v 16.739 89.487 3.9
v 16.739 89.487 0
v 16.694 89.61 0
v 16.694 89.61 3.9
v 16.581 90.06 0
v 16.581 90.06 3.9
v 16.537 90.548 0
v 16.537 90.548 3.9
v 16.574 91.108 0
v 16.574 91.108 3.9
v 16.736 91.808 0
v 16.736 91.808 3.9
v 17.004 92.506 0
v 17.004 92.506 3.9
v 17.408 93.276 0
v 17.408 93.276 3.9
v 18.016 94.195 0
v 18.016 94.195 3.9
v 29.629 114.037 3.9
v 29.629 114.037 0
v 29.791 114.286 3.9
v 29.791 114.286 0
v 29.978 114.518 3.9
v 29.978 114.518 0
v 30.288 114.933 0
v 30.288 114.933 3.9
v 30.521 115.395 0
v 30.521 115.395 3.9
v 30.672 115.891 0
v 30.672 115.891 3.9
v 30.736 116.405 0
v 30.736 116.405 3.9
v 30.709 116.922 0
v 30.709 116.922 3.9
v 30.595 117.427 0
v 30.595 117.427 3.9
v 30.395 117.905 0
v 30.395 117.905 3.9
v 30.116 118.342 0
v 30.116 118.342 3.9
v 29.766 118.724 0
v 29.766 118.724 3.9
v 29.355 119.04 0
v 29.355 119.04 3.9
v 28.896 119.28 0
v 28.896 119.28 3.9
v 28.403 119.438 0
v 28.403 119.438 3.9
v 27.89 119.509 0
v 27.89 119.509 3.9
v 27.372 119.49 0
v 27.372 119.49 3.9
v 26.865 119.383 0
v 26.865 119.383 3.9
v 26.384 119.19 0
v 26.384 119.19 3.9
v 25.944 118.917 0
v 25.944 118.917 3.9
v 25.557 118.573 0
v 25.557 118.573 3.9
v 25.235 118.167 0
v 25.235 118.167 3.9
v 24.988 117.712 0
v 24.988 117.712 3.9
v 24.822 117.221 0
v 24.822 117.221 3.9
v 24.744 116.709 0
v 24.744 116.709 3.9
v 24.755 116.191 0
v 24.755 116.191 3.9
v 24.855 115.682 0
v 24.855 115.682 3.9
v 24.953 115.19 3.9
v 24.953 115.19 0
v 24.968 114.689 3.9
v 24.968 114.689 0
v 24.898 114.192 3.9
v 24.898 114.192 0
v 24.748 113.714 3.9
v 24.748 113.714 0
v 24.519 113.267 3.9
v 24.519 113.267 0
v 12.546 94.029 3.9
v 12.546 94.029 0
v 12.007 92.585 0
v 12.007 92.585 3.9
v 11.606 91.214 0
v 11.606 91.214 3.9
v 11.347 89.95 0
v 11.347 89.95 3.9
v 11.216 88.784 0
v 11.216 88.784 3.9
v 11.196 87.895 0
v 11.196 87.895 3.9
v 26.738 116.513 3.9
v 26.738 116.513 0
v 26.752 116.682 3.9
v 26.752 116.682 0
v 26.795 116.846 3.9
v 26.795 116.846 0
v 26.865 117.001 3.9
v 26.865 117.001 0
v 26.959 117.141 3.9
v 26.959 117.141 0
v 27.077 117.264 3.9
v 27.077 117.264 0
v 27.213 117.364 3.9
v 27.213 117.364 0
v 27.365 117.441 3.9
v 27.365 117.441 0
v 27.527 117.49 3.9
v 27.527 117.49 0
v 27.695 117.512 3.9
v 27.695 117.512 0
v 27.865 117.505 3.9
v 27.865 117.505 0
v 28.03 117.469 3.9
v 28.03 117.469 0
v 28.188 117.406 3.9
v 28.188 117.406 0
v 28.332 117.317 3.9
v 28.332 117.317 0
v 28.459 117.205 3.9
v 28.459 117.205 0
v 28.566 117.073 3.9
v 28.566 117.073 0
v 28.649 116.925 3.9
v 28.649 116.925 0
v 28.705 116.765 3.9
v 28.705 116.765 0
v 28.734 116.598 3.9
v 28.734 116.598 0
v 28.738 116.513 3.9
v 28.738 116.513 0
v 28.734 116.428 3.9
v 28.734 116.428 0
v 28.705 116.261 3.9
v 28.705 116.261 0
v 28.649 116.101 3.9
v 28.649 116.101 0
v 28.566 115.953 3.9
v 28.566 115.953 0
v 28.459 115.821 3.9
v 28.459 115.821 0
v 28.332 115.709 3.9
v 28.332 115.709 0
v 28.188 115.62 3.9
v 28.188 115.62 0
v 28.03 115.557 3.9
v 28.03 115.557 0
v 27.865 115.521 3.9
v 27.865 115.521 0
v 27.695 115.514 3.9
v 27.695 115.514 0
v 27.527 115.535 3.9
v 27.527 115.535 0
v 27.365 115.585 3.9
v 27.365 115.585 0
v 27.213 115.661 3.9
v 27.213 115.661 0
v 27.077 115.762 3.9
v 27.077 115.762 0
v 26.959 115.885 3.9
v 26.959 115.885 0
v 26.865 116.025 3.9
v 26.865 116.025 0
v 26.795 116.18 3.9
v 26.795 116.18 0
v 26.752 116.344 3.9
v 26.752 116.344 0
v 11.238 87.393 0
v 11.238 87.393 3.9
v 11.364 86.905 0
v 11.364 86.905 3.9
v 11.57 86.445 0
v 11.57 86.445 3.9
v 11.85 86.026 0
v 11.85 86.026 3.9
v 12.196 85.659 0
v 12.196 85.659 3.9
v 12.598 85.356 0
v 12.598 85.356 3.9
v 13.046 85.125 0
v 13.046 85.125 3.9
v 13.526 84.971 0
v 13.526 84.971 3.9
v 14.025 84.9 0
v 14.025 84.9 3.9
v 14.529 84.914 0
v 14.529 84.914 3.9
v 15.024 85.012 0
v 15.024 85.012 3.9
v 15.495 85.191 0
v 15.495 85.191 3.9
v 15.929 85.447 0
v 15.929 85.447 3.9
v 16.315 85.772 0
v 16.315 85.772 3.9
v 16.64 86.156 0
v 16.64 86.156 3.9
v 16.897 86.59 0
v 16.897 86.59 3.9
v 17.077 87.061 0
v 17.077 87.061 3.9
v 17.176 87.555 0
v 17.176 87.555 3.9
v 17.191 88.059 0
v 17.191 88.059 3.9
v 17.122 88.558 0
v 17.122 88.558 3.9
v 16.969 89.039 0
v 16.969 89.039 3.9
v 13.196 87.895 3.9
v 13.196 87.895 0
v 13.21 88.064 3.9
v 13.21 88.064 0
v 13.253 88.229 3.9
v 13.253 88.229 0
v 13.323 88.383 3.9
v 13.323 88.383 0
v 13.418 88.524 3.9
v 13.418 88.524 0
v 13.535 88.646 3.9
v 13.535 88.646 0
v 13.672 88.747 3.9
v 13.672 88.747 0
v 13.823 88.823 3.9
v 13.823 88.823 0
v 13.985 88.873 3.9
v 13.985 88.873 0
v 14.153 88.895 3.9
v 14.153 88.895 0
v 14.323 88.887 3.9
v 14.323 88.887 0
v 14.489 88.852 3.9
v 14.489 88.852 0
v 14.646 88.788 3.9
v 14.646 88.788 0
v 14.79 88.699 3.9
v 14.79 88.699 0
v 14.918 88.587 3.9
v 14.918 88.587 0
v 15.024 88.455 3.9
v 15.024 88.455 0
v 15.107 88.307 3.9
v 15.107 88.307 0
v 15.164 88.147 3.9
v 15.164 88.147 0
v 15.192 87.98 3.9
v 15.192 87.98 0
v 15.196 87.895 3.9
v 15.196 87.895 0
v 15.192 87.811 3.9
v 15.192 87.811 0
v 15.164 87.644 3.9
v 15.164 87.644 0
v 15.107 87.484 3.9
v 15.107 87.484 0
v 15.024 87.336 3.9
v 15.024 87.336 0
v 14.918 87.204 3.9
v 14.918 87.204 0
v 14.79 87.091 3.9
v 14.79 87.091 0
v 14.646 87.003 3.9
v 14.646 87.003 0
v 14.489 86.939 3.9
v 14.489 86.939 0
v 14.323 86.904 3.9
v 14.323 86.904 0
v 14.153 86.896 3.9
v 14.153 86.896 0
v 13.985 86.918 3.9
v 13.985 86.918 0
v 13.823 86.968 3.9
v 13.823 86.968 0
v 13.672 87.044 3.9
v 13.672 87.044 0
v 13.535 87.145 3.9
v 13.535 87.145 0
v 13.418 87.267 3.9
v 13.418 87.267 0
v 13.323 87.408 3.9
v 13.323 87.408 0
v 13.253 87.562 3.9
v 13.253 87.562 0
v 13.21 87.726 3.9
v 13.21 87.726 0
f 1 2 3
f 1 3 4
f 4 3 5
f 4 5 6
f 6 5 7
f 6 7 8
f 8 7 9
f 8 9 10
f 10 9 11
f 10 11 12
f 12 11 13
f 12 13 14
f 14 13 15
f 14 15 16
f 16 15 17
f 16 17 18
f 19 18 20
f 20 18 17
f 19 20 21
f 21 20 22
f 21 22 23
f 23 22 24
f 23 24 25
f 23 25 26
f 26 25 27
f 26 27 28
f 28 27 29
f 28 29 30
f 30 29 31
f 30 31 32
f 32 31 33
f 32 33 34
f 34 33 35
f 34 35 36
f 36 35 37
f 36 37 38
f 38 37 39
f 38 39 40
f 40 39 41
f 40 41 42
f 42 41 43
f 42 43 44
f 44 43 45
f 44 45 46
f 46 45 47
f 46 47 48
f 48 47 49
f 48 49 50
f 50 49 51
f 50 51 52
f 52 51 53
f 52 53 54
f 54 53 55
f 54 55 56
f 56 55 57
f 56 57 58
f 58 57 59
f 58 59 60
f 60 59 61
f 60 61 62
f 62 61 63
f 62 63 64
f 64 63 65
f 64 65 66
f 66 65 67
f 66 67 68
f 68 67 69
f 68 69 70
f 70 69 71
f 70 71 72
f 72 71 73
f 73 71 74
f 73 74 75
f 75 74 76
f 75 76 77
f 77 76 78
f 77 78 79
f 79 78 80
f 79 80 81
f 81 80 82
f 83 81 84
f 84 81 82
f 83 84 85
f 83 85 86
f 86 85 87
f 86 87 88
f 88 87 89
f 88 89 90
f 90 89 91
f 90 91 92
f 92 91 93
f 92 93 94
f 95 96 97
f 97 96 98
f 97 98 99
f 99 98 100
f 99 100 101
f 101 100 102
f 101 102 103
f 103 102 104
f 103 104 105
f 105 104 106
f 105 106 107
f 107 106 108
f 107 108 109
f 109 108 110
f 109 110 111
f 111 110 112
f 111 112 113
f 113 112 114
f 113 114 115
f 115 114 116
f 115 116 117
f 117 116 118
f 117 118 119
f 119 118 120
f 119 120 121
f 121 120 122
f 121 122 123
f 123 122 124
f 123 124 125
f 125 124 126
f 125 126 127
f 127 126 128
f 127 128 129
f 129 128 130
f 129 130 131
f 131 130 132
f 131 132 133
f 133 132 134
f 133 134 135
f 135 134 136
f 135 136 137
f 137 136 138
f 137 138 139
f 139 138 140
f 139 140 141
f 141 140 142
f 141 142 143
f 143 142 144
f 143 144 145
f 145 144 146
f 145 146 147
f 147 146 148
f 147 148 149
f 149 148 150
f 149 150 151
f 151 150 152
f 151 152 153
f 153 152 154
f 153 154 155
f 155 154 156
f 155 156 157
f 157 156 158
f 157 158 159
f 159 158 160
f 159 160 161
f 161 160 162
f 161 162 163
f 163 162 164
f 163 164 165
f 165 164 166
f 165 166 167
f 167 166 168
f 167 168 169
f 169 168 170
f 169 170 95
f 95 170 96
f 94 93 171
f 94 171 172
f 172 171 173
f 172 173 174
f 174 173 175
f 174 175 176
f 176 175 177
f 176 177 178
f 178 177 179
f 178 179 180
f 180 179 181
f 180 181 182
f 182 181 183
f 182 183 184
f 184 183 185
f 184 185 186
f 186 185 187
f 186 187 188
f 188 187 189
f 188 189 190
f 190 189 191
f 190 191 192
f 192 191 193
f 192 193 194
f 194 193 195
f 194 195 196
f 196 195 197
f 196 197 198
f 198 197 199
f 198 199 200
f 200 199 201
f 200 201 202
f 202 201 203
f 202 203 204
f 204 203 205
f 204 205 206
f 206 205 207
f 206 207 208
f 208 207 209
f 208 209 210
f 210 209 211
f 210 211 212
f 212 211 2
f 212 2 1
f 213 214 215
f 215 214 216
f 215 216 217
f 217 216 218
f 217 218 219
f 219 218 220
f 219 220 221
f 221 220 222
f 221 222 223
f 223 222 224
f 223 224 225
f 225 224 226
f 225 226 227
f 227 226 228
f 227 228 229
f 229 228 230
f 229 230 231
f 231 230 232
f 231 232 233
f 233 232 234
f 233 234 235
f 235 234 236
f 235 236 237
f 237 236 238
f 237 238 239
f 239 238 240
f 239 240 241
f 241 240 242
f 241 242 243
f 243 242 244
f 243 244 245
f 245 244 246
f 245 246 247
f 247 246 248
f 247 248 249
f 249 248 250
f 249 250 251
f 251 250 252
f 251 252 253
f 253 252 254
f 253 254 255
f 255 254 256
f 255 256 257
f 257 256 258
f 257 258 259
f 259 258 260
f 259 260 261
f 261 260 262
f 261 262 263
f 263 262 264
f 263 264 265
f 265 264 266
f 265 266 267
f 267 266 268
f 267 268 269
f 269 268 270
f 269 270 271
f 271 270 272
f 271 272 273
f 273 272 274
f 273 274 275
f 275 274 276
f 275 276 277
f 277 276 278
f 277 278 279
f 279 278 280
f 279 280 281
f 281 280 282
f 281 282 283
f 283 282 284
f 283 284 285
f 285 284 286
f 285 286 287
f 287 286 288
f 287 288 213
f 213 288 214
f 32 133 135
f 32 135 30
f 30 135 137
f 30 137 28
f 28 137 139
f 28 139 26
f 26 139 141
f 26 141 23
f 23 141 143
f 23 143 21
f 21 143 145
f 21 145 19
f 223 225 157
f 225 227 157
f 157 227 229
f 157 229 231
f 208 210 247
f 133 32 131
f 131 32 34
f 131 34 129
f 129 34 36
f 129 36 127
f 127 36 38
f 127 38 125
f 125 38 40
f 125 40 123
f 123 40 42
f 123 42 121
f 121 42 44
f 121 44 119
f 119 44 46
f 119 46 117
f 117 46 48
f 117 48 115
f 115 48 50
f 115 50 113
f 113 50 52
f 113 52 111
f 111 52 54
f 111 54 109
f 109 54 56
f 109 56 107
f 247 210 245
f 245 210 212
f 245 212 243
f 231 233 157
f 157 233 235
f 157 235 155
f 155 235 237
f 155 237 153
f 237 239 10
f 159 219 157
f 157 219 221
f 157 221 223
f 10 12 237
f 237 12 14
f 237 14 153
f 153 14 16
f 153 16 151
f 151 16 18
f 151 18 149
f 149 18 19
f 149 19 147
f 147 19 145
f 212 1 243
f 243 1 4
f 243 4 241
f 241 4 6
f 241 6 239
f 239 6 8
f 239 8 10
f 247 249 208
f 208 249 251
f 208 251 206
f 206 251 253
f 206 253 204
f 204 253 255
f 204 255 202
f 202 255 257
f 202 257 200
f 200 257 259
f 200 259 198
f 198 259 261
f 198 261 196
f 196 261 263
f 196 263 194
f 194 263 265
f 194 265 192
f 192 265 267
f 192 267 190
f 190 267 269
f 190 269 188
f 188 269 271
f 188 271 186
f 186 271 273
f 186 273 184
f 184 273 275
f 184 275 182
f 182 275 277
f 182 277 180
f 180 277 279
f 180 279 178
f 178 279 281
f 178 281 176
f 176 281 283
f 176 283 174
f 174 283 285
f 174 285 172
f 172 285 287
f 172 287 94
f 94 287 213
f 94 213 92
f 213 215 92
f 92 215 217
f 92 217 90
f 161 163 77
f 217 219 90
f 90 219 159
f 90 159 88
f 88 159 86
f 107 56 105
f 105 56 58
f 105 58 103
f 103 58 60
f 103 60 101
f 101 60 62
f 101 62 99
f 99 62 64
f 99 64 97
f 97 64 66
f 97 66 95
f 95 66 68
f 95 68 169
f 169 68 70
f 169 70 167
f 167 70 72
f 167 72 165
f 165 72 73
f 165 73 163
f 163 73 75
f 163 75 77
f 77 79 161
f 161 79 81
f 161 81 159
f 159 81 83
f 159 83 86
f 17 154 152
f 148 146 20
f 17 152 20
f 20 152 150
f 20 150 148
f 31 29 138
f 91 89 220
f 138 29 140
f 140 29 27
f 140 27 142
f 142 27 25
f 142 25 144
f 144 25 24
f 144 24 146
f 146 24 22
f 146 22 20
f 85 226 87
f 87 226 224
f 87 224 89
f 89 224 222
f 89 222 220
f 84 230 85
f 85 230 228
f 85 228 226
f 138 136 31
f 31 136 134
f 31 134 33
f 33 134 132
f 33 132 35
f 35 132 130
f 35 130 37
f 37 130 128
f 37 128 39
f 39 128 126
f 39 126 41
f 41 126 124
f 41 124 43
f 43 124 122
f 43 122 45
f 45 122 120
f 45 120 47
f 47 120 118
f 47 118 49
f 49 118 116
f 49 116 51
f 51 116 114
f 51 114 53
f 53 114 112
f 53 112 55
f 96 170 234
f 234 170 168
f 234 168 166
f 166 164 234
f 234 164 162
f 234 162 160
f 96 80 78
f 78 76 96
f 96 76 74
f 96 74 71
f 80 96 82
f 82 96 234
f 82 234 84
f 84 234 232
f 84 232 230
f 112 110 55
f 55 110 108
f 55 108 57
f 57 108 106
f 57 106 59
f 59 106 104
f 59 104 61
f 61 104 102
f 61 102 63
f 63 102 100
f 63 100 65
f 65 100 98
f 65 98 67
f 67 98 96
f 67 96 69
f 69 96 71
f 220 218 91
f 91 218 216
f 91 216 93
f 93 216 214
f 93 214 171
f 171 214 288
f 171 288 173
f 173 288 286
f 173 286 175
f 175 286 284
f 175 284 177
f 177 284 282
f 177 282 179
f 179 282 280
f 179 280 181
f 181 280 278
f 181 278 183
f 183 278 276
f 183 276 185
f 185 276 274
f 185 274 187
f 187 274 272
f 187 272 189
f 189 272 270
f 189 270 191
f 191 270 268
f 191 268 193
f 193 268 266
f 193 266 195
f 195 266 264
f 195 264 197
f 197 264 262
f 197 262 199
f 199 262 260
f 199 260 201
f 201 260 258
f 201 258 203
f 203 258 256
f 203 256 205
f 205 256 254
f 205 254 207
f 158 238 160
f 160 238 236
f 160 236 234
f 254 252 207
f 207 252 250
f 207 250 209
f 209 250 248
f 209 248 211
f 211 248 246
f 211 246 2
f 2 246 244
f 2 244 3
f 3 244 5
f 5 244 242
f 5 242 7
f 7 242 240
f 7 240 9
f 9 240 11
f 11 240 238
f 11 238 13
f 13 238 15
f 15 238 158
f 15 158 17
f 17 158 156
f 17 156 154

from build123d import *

# Parameters (mm, degrees)
SKETCH6_R           = 1
BOSS_EXTRUDE1_DEPTH = 3.9


with BuildPart() as part:
    # Sketch6 → Boss-Extrude1 (new body)
    with BuildSketch(Plane.XY):
        with BuildLine():
            Line((24.518959729, 113.266913748), (12.546015233, 94.029173129))
            add(Edge.make_bspline(
                [(12.546015233, 94.029173129), (11.143200975, 90.620780812), (11.195857544, 87.895488842)],
                knots=[0, 0, 0, 1, 1, 1], degree=2))
            ThreePointArc((11.195857544, 87.895488842), (15.023721592, 85.0119769), (16.738951622, 89.486926087))
            add(Edge.make_bspline(
                [(18.016460853, 94.194825281), (15.988617018, 91.415760023), (16.738951622, 89.486926087)],
                knots=[0, 0, 0, 1, 1, 1], degree=2))
            Line((18.016460853, 94.194825281), (29.628743828, 114.037411274))
            ThreePointArc((29.628743828, 114.037411274), (29.791338928, 114.286113373), (29.977739072, 114.517511055))
            ThreePointArc((29.977739072, 114.517511055), (28.402741778, 119.438186194), (24.854741229, 115.682476887))
            ThreePointArc((24.854741229, 115.682476887), (24.943384664, 114.439035131), (24.518959729, 113.266913748))
        make_face()
        with Locations((27.737526551, 116.51286763)):
            Circle(SKETCH6_R, mode=Mode.SUBTRACT)
        with Locations((14.195857544, 87.895488842)):
            Circle(SKETCH6_R, mode=Mode.SUBTRACT)
    extrude(amount=BOSS_EXTRUDE1_DEPTH)


solid = part.part
